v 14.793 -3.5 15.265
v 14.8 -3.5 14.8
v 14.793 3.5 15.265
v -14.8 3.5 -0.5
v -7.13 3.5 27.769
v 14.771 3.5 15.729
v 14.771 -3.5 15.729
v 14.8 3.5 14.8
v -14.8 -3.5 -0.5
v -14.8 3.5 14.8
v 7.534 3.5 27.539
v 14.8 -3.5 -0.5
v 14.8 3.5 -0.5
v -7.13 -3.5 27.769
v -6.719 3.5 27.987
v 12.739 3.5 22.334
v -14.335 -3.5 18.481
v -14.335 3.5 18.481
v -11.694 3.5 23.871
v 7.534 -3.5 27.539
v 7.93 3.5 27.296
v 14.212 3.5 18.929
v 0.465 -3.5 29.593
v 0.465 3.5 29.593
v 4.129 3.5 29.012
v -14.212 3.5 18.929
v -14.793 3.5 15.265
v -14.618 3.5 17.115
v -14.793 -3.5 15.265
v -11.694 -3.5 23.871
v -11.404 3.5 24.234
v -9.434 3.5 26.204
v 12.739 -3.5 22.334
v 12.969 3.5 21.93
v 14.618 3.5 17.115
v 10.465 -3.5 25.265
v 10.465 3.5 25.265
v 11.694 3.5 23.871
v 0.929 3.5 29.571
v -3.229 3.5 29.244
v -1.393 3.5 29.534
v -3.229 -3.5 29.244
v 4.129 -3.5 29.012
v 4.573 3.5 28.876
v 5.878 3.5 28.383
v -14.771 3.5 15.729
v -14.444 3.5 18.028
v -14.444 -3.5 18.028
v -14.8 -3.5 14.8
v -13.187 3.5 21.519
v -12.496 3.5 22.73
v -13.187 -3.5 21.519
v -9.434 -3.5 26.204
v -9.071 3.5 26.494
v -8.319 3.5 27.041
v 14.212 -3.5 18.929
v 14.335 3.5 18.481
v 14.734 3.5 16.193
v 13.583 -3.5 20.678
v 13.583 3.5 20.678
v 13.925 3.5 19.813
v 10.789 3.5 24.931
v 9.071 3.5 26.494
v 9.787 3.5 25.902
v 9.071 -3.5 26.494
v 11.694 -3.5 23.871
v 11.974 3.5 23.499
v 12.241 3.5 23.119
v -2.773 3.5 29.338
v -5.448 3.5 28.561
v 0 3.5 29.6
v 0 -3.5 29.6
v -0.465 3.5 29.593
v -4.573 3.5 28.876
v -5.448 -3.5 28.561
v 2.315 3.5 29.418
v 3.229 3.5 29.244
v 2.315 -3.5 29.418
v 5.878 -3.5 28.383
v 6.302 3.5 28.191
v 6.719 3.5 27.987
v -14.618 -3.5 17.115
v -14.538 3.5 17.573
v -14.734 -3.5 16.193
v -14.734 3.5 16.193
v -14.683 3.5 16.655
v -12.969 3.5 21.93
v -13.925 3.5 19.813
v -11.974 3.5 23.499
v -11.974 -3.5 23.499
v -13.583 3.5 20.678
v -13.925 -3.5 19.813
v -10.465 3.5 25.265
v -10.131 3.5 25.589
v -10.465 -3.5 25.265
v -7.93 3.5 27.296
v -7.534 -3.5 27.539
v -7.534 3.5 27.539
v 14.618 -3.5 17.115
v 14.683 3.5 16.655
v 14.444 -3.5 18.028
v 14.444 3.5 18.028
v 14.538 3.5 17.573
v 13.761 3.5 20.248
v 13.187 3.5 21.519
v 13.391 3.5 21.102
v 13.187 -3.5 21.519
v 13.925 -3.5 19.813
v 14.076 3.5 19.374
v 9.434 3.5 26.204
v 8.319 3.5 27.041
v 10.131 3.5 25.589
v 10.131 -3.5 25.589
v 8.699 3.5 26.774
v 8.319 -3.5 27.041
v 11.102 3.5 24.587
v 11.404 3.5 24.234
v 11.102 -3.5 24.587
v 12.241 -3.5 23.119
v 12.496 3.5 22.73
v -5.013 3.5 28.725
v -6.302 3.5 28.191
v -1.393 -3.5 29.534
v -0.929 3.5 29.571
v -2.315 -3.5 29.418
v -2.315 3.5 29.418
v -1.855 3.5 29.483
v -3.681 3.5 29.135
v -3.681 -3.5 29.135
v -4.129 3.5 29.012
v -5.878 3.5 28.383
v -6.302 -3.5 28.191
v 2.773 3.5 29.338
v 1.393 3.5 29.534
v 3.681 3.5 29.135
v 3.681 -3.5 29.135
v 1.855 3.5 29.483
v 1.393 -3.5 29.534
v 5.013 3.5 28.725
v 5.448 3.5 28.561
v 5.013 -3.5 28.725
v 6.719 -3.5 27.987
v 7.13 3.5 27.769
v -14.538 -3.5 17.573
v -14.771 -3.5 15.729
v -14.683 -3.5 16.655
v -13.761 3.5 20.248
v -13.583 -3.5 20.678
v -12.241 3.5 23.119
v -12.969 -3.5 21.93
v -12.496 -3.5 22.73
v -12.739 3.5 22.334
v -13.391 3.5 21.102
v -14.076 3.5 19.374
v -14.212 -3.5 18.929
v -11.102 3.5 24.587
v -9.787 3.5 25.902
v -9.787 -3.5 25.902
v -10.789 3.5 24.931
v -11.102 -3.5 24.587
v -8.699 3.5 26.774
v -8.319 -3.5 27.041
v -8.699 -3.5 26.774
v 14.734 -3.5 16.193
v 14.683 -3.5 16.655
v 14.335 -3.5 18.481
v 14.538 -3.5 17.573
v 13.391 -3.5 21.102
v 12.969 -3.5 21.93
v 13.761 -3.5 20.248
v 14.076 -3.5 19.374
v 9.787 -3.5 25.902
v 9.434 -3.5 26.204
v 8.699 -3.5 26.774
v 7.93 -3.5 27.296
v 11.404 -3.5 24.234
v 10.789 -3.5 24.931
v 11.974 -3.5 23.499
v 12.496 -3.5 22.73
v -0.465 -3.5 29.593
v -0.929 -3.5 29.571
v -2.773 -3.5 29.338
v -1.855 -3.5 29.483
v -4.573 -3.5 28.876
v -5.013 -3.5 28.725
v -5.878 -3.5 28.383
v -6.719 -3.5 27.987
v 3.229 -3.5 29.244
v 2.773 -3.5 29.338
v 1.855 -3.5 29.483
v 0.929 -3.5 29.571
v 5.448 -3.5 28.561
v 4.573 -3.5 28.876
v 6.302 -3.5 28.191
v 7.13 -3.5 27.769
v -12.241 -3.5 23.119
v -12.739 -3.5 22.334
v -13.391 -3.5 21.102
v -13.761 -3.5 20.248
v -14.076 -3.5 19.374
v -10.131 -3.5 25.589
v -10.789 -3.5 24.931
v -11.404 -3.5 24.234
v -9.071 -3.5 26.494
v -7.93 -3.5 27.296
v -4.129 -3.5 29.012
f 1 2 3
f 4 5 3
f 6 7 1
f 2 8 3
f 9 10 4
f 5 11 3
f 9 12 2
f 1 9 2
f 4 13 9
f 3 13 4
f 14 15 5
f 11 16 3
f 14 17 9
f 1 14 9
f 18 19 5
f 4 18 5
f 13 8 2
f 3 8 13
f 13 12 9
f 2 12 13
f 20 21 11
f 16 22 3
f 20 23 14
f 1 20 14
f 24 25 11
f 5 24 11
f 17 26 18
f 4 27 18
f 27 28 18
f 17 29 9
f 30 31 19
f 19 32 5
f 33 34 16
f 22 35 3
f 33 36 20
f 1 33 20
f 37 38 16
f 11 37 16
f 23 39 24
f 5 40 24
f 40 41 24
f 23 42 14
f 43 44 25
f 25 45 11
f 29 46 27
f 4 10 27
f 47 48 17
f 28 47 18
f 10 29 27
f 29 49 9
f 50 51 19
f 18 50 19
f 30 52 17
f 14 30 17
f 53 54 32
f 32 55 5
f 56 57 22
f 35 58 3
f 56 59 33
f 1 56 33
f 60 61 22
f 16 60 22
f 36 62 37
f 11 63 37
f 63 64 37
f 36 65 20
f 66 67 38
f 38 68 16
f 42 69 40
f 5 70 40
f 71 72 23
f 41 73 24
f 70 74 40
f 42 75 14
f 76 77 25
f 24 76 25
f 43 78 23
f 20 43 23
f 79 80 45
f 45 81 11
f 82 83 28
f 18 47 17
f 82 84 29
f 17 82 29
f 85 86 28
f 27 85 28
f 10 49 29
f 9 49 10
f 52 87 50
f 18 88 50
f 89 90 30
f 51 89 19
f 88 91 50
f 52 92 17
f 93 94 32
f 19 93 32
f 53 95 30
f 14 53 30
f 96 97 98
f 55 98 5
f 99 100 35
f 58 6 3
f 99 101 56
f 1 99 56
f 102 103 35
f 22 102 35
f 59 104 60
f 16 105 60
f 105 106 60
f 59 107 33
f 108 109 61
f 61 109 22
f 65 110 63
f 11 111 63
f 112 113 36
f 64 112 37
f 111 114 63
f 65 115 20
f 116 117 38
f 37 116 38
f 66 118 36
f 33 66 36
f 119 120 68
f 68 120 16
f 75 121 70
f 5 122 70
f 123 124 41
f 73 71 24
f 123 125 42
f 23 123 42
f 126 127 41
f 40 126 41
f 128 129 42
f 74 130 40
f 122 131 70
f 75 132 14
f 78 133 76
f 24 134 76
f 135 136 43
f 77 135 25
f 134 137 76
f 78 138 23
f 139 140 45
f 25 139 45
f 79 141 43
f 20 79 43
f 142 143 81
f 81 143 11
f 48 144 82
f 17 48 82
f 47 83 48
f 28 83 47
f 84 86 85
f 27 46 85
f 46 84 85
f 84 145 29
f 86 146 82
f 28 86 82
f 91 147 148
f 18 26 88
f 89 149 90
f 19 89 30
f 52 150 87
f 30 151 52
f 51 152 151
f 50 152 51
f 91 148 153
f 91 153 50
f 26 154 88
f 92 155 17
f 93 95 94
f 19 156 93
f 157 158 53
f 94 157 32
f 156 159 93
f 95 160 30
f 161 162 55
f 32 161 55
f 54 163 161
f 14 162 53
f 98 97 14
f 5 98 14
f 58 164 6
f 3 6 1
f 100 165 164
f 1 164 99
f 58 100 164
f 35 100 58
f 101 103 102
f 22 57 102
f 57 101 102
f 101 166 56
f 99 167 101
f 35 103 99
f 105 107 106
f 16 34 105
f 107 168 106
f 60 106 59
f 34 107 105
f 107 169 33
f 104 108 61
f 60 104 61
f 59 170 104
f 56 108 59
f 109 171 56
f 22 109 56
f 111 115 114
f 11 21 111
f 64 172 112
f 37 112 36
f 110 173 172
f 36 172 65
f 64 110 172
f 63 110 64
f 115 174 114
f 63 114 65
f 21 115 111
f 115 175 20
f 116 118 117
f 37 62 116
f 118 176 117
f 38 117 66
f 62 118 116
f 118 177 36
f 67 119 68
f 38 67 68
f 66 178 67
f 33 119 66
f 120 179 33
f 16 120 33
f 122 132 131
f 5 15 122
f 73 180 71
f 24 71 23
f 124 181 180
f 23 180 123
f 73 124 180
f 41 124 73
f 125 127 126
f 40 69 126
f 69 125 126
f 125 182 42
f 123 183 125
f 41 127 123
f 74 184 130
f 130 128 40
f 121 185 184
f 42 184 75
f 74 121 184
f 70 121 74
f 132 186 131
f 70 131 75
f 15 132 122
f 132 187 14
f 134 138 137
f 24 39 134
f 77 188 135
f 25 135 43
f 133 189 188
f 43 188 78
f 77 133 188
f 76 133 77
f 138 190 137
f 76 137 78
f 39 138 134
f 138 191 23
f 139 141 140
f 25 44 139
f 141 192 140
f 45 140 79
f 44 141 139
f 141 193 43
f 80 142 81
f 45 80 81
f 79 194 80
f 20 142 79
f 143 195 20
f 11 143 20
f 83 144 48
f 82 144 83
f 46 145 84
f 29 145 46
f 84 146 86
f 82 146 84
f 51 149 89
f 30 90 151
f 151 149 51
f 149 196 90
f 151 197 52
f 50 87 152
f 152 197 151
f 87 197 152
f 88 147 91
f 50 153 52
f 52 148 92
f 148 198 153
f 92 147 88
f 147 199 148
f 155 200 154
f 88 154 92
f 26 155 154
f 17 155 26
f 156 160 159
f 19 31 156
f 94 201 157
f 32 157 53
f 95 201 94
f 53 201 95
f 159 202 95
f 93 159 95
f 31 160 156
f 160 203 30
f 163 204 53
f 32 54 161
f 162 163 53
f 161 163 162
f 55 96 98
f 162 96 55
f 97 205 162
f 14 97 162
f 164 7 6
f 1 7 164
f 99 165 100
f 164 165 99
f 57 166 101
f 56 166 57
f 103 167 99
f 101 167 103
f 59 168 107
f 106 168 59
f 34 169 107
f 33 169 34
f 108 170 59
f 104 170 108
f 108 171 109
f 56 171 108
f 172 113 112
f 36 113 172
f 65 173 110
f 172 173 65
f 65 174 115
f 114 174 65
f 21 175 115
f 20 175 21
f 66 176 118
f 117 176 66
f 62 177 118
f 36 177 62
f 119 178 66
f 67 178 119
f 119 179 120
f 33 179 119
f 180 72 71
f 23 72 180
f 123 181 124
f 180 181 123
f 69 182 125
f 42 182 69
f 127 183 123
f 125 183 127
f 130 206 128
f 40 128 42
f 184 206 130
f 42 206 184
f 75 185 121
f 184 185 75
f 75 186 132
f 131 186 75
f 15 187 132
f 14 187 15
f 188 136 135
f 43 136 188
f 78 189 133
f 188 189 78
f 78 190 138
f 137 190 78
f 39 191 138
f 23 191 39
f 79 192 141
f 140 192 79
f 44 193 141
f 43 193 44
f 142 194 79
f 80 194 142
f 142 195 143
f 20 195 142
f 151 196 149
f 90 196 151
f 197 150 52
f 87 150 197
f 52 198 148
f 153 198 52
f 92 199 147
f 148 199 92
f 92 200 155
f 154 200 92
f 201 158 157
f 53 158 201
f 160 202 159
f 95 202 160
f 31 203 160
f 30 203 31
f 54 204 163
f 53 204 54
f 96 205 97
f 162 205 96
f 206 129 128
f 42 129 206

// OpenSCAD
// super simple cube to use for custom support in cura (for the bearings)

/* [From tracker.scad] */

hinge_thickness = 5;

bearing_diameter = 22.1;

bearing_height = 7;

/* [Hidden] */

$fn=200;

// subtract some material so we don't get clipping outside of the main part in cura when using this model as a support
hinge_housing_diameter=bearing_diameter+hinge_thickness*2-hinge_thickness/2;

hull()
{
    translate([0,0,hinge_housing_diameter/2])
    rotate([90,0,0])
    cylinder(d=hinge_housing_diameter,h=bearing_height,center=true);
    
    cube([hinge_housing_diameter,bearing_height,1],center=true);
}
